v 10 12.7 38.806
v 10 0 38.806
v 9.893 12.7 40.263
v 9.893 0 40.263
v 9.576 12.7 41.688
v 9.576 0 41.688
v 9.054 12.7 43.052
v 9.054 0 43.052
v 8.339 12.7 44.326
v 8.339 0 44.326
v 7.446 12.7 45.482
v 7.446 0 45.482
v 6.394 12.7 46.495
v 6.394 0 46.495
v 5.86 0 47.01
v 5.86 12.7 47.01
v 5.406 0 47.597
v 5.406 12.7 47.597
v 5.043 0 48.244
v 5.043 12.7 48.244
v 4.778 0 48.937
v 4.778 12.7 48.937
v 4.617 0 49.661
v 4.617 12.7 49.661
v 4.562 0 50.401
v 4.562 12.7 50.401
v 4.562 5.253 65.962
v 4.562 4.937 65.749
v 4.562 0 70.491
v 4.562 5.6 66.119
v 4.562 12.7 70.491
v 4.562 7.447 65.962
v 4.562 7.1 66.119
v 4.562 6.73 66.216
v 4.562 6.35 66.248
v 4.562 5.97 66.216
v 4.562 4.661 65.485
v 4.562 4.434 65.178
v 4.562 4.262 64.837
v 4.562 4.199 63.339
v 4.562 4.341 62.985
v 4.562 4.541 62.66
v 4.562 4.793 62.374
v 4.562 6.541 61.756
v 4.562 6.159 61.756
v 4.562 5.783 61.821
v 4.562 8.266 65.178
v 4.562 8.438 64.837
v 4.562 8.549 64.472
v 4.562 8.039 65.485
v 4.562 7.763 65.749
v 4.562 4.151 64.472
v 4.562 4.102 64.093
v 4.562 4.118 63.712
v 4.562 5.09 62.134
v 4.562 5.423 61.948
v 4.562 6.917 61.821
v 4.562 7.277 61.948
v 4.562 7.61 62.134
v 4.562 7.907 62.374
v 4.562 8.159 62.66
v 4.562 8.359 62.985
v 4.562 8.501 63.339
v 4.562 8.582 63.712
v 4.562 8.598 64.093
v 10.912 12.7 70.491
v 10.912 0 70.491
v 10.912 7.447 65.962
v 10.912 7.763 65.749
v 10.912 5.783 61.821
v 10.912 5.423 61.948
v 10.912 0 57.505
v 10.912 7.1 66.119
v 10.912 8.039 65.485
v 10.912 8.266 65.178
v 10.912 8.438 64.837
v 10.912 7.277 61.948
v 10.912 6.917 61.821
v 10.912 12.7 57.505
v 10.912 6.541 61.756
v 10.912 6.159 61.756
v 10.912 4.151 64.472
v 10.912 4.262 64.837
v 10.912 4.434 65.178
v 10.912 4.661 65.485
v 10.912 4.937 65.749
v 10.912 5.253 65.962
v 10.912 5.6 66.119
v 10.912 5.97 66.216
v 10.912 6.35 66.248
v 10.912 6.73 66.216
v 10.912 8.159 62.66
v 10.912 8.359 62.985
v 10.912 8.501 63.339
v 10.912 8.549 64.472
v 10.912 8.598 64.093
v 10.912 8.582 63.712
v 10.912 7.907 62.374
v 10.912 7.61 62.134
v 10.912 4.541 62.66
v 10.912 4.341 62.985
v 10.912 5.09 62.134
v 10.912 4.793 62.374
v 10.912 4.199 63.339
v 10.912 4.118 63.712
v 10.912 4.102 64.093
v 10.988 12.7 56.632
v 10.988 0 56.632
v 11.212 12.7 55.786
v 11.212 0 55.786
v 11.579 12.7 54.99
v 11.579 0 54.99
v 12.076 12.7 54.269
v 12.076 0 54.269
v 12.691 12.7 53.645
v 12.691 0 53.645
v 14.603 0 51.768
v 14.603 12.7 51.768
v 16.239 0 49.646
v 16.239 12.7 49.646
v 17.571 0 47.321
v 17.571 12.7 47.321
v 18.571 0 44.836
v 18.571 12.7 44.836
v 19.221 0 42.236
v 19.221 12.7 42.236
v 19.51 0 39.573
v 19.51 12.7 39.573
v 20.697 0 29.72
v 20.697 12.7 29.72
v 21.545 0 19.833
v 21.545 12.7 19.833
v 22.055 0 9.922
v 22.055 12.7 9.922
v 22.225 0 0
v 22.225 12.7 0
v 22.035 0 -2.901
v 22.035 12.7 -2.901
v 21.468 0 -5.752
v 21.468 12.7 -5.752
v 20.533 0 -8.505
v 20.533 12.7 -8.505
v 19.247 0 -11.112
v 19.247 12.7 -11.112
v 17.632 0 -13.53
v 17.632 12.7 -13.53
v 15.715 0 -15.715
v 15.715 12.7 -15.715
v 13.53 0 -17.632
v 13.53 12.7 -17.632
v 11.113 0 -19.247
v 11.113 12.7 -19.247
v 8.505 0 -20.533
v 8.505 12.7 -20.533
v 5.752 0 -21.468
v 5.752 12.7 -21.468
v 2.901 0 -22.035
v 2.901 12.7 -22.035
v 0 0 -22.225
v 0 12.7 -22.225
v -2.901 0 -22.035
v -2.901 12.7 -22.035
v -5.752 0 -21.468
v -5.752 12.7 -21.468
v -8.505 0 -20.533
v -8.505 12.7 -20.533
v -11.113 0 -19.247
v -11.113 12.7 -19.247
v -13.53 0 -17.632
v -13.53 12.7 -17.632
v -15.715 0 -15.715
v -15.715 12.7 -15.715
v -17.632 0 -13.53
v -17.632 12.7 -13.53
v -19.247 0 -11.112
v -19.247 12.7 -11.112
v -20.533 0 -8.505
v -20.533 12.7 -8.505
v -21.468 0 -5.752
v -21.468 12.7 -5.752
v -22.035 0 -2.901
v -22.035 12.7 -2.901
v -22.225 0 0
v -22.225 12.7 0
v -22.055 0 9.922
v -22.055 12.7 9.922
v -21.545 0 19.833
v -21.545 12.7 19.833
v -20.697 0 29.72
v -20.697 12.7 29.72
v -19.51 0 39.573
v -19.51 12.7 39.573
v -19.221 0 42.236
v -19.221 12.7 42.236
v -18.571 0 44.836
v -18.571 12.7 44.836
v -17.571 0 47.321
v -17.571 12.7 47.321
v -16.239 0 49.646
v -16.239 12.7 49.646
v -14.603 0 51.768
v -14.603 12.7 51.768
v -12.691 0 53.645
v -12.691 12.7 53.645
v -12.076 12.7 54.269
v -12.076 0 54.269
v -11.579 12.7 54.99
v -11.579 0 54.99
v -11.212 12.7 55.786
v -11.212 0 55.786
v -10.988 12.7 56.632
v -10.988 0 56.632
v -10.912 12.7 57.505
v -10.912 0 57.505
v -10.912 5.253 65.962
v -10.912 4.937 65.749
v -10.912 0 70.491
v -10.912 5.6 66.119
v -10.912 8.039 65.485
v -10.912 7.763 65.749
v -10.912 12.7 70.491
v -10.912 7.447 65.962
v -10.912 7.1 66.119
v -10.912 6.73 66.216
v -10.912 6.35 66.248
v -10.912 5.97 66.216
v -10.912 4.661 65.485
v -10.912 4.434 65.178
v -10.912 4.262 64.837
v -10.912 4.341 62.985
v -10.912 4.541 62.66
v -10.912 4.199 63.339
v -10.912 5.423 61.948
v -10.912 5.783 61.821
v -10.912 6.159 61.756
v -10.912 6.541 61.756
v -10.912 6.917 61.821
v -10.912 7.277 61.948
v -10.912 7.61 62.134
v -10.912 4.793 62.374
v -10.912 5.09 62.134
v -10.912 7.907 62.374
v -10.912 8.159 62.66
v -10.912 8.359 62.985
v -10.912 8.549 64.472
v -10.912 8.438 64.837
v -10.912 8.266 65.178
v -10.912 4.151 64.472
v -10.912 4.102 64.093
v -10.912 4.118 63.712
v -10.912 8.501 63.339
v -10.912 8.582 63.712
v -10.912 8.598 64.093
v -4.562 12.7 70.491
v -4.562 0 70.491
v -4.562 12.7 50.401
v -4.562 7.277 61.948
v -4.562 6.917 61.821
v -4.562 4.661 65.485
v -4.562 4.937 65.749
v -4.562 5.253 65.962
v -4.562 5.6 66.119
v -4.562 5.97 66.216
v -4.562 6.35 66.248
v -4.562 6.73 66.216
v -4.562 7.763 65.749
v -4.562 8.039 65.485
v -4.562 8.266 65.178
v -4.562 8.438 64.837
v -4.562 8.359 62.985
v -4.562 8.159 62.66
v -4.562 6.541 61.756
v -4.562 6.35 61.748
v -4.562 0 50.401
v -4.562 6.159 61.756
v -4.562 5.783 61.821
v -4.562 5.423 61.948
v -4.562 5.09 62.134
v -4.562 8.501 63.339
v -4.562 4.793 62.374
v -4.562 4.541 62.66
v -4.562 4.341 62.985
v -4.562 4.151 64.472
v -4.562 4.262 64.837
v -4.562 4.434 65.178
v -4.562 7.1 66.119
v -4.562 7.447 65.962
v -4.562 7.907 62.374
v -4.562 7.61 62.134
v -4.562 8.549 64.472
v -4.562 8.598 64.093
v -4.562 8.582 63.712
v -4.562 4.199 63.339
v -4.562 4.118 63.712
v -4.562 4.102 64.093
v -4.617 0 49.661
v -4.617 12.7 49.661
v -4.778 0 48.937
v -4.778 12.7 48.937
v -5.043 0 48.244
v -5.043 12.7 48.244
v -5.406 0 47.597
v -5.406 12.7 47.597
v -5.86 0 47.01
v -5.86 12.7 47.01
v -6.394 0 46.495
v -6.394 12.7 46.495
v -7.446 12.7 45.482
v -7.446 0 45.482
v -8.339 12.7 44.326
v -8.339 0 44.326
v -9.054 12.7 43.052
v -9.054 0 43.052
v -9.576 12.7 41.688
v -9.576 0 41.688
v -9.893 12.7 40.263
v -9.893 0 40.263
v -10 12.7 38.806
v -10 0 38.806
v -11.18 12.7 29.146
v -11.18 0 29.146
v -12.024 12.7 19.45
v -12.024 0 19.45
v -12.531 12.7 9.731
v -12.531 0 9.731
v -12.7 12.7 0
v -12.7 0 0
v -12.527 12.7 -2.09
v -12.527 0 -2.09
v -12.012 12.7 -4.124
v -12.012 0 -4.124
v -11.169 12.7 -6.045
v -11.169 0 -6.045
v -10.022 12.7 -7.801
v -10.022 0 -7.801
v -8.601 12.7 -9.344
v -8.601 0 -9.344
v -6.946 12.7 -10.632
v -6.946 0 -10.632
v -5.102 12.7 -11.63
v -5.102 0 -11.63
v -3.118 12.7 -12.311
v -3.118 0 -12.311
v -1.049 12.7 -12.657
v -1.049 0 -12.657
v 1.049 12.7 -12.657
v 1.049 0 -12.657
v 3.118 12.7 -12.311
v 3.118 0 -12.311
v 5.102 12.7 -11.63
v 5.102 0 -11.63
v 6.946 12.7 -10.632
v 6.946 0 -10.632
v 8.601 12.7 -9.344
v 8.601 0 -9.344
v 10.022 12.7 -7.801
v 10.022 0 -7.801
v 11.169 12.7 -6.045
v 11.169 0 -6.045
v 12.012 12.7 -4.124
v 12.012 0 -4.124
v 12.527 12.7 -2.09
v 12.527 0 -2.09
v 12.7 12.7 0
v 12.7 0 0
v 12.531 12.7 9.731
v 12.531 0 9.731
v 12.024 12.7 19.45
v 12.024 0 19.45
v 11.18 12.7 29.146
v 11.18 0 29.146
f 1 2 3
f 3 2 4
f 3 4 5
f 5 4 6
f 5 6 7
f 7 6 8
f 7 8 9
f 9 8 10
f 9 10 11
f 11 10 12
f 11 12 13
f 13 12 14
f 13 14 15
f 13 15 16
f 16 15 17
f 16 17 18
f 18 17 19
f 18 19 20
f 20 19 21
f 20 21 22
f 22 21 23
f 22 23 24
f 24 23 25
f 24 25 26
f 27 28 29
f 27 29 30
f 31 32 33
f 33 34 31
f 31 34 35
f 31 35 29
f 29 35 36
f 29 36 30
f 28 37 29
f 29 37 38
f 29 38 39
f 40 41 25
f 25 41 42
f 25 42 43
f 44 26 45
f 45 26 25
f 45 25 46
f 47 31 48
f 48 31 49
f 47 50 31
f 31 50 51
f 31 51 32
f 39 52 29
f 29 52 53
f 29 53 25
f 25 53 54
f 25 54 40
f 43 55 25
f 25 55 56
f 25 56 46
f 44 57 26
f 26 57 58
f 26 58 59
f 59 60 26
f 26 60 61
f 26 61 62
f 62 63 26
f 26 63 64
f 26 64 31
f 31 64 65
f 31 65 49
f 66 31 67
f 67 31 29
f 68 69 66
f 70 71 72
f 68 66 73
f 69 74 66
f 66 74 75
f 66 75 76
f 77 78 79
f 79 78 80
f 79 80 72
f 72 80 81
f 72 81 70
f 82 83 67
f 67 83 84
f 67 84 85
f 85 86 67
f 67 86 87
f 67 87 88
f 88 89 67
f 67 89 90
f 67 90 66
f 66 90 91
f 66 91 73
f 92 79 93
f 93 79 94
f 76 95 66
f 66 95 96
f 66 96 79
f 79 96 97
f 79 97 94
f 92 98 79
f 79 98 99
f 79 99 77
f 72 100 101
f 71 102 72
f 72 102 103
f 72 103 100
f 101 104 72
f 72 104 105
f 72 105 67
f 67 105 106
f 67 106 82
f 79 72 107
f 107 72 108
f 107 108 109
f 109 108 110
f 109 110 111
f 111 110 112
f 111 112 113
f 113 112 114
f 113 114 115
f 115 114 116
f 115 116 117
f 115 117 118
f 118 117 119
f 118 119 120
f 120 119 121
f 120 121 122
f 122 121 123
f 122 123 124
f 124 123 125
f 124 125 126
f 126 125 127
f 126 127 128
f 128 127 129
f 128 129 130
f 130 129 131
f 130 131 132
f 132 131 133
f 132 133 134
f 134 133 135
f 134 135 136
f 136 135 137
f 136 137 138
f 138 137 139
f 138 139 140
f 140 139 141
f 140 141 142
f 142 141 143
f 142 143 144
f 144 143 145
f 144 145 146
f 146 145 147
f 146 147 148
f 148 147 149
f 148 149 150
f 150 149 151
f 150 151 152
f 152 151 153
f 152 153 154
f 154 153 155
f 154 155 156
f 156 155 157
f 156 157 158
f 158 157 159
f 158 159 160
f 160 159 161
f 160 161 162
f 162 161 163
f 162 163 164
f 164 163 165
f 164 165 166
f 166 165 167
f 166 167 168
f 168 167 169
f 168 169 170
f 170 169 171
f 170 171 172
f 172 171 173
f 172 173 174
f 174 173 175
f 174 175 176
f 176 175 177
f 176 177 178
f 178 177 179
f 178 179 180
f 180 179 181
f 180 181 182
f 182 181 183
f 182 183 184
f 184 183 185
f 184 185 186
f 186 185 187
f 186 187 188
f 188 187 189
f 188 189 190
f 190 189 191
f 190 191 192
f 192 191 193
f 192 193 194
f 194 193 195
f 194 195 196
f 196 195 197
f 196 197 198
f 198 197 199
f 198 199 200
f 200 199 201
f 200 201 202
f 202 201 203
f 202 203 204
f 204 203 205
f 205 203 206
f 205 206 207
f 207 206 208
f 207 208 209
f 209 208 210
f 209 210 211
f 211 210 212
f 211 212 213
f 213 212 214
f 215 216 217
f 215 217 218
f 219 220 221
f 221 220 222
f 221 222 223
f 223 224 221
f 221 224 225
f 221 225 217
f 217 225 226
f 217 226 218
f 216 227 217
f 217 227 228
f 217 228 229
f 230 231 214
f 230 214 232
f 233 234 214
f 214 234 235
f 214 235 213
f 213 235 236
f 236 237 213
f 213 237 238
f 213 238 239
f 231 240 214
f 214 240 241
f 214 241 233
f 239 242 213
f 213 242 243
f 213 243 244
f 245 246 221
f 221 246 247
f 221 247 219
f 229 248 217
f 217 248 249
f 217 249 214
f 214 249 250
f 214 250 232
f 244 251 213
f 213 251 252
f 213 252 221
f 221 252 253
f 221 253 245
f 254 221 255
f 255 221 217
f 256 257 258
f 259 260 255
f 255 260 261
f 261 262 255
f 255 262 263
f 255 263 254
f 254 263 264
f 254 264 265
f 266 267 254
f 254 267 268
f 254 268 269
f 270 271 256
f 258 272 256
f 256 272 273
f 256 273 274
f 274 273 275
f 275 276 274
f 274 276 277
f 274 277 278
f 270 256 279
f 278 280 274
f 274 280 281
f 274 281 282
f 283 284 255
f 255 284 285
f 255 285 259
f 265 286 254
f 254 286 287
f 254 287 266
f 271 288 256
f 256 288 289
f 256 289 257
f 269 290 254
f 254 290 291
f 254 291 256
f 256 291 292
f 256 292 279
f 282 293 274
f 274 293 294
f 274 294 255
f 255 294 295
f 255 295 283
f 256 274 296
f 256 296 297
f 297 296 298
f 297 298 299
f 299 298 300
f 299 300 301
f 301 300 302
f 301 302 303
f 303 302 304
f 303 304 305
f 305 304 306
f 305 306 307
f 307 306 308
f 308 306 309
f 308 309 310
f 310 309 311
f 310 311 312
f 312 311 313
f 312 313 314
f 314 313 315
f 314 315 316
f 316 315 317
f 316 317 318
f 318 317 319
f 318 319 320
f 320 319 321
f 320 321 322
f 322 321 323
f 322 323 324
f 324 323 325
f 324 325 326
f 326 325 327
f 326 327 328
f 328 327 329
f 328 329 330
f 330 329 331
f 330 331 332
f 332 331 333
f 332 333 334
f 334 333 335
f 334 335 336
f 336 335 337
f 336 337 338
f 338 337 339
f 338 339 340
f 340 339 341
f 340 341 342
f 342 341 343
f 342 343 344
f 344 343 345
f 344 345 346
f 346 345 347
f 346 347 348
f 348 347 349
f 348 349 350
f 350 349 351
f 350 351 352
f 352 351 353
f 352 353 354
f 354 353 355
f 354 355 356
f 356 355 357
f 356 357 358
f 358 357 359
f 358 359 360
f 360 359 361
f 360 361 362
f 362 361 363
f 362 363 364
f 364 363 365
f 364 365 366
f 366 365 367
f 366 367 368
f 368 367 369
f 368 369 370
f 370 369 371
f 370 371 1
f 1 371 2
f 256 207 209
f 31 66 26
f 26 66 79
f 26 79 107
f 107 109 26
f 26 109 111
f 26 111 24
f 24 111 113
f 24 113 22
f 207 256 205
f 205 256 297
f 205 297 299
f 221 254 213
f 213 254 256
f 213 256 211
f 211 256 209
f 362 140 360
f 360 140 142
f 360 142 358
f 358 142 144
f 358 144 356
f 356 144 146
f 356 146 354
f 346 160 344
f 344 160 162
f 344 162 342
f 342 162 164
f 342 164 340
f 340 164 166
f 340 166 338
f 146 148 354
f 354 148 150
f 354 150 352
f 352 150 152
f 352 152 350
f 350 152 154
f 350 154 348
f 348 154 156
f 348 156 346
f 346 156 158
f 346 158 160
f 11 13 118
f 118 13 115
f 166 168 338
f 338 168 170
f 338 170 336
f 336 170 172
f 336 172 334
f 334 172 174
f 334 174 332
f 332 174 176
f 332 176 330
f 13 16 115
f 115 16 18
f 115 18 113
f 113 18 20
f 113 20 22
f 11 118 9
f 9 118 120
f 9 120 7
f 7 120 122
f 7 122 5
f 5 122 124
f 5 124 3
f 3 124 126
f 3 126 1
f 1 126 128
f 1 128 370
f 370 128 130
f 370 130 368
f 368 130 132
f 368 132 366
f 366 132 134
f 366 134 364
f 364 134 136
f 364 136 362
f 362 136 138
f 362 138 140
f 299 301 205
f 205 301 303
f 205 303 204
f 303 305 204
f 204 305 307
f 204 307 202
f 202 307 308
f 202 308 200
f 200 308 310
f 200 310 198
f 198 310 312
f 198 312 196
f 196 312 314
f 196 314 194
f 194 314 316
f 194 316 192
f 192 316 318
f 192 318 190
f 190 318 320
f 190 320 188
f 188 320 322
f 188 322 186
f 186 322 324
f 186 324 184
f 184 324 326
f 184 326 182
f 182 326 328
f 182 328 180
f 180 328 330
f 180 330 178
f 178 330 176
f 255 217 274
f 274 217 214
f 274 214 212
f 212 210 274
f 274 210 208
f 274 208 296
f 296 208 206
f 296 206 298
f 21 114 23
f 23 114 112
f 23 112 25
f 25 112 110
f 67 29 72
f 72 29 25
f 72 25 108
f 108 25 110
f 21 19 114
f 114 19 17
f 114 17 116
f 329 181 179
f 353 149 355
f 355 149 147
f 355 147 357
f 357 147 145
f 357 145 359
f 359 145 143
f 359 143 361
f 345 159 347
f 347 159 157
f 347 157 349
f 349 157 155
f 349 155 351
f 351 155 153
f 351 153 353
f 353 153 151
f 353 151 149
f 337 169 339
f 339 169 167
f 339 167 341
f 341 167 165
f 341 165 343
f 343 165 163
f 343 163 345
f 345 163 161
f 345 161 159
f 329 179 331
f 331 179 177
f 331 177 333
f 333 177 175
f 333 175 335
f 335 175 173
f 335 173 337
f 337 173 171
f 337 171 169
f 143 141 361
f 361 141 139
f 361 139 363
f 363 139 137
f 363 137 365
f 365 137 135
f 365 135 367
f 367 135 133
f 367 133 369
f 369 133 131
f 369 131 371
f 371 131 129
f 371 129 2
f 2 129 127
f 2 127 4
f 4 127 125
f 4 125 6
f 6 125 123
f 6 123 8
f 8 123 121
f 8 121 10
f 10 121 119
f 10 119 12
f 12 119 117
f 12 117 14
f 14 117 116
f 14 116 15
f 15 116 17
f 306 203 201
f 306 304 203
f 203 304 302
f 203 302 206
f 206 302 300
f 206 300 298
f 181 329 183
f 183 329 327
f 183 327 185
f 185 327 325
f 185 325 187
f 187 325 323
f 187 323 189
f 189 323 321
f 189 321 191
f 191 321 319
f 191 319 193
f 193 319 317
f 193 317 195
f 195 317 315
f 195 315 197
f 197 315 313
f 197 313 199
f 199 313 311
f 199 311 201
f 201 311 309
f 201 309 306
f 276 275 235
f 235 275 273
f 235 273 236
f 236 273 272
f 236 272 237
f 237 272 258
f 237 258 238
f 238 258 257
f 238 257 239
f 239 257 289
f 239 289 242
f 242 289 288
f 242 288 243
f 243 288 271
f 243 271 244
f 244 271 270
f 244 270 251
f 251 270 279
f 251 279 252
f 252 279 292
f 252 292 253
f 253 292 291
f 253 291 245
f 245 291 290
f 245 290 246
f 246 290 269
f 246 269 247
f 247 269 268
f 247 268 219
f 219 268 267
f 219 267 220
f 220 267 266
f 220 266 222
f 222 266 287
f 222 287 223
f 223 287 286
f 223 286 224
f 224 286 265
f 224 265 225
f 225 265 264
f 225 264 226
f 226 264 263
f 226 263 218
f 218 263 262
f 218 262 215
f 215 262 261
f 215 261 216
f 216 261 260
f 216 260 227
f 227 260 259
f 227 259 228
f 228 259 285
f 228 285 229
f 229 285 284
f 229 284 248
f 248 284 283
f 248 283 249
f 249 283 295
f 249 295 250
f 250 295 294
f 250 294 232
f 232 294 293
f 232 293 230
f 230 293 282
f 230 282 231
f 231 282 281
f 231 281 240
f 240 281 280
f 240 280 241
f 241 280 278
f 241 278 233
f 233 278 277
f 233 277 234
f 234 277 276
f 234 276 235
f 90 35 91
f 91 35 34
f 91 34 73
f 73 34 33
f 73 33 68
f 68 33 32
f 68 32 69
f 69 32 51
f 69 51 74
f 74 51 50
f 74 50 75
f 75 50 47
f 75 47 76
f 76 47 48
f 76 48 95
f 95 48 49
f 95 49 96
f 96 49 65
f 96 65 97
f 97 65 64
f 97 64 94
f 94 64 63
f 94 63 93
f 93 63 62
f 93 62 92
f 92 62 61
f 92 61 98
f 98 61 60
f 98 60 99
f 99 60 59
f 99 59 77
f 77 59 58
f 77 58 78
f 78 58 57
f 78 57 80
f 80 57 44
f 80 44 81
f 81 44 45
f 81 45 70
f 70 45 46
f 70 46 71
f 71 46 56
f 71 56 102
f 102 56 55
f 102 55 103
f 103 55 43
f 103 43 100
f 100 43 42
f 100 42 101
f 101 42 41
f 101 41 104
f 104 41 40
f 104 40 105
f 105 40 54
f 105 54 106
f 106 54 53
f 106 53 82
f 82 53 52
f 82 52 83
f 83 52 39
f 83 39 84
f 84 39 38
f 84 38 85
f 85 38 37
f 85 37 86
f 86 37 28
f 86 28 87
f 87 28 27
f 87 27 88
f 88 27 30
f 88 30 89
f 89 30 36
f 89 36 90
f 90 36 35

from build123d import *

# Parameters (mm, degrees)
BOSS_EXTRUDE1_DEPTH = 12.7
SKETCH3_R           = 2.249999945
CUT_EXTRUDE1_DEPTH  = 1397


with BuildPart() as part:
    # Sketch1 → Boss-Extrude1 (new body)
    with BuildSketch(Plane(origin=(0, 0, 0), x_dir=(1, 0, 0), z_dir=(0, 1, 0))):
        with BuildLine():
            Line((-4.562476894, -57.790786968), (-4.562476894, -70.490786968))
            Line((-4.562476894, -70.490786968), (-10.912476894, -70.490786968))
            Line((-10.912476894, -70.490786968), (-10.912476894, -57.505177075))
            ThreePointArc((-10.912476894, -57.505177075), (-11.378381687, -55.37996522), (-12.690636511, -53.644574779))
            ThreePointArc((-12.690636511, -53.644574779), (-17.570519454, -47.321172947), (-19.50995016, -39.572800421))
            ThreePointArc((-19.50995016, -39.572800421), (-21.545440648, -19.832914743), (-22.225, 0))
            ThreePointArc((-22.225, 0), (0, 22.225), (22.225, 0))
            ThreePointArc((22.225, 0), (21.545440648, -19.832914743), (19.50995016, -39.572800421))
            ThreePointArc((19.50995016, -39.572800421), (17.570519454, -47.321172947), (12.690636511, -53.644574779))
            ThreePointArc((12.690636511, -53.644574779), (11.378381687, -55.37996522), (10.912476894, -57.505177075))
            Line((10.912476894, -57.505177075), (10.912476894, -70.490786968))
            Line((10.912476894, -70.490786968), (4.562476894, -70.490786968))
            Line((4.562476894, -70.490786968), (4.562476894, -57.790786968))
            Line((4.562476894, -57.790786968), (4.562476894, -50.400688426))
            ThreePointArc((4.562476894, -50.400688426), (5.043152587, -48.243696093), (6.394215447, -46.494898164))
            ThreePointArc((6.394215447, -46.494898164), (9.053788005, -43.052382556), (10, -38.806334656))
            ThreePointArc((10, -38.806334656), (12.024185077, -19.450074611), (12.7, 0))
            ThreePointArc((12.7, 0), (0, 12.7), (-12.7, 0))
            ThreePointArc((-12.7, 0), (-12.024185077, -19.450074611), (-10, -38.806334656))
            ThreePointArc((-10, -38.806334656), (-9.053788005, -43.052382556), (-6.394215447, -46.494898164))
            ThreePointArc((-6.394215447, -46.494898164), (-5.043152587, -48.243696093), (-4.562476894, -50.400688426))
            Line((-4.562476894, -50.400688426), (-4.562476894, -57.790786968))
        make_face()
    extrude(amount=BOSS_EXTRUDE1_DEPTH)

    # Sketch3 → Cut-Extrude1 (cut)
    with BuildSketch(Plane.ZY.offset(10.912476894)):
        with Locations((63.997982022, 6.35)):
            Circle(SKETCH3_R)
    extrude(amount=-CUT_EXTRUDE1_DEPTH, mode=Mode.SUBTRACT)


solid = part.part
